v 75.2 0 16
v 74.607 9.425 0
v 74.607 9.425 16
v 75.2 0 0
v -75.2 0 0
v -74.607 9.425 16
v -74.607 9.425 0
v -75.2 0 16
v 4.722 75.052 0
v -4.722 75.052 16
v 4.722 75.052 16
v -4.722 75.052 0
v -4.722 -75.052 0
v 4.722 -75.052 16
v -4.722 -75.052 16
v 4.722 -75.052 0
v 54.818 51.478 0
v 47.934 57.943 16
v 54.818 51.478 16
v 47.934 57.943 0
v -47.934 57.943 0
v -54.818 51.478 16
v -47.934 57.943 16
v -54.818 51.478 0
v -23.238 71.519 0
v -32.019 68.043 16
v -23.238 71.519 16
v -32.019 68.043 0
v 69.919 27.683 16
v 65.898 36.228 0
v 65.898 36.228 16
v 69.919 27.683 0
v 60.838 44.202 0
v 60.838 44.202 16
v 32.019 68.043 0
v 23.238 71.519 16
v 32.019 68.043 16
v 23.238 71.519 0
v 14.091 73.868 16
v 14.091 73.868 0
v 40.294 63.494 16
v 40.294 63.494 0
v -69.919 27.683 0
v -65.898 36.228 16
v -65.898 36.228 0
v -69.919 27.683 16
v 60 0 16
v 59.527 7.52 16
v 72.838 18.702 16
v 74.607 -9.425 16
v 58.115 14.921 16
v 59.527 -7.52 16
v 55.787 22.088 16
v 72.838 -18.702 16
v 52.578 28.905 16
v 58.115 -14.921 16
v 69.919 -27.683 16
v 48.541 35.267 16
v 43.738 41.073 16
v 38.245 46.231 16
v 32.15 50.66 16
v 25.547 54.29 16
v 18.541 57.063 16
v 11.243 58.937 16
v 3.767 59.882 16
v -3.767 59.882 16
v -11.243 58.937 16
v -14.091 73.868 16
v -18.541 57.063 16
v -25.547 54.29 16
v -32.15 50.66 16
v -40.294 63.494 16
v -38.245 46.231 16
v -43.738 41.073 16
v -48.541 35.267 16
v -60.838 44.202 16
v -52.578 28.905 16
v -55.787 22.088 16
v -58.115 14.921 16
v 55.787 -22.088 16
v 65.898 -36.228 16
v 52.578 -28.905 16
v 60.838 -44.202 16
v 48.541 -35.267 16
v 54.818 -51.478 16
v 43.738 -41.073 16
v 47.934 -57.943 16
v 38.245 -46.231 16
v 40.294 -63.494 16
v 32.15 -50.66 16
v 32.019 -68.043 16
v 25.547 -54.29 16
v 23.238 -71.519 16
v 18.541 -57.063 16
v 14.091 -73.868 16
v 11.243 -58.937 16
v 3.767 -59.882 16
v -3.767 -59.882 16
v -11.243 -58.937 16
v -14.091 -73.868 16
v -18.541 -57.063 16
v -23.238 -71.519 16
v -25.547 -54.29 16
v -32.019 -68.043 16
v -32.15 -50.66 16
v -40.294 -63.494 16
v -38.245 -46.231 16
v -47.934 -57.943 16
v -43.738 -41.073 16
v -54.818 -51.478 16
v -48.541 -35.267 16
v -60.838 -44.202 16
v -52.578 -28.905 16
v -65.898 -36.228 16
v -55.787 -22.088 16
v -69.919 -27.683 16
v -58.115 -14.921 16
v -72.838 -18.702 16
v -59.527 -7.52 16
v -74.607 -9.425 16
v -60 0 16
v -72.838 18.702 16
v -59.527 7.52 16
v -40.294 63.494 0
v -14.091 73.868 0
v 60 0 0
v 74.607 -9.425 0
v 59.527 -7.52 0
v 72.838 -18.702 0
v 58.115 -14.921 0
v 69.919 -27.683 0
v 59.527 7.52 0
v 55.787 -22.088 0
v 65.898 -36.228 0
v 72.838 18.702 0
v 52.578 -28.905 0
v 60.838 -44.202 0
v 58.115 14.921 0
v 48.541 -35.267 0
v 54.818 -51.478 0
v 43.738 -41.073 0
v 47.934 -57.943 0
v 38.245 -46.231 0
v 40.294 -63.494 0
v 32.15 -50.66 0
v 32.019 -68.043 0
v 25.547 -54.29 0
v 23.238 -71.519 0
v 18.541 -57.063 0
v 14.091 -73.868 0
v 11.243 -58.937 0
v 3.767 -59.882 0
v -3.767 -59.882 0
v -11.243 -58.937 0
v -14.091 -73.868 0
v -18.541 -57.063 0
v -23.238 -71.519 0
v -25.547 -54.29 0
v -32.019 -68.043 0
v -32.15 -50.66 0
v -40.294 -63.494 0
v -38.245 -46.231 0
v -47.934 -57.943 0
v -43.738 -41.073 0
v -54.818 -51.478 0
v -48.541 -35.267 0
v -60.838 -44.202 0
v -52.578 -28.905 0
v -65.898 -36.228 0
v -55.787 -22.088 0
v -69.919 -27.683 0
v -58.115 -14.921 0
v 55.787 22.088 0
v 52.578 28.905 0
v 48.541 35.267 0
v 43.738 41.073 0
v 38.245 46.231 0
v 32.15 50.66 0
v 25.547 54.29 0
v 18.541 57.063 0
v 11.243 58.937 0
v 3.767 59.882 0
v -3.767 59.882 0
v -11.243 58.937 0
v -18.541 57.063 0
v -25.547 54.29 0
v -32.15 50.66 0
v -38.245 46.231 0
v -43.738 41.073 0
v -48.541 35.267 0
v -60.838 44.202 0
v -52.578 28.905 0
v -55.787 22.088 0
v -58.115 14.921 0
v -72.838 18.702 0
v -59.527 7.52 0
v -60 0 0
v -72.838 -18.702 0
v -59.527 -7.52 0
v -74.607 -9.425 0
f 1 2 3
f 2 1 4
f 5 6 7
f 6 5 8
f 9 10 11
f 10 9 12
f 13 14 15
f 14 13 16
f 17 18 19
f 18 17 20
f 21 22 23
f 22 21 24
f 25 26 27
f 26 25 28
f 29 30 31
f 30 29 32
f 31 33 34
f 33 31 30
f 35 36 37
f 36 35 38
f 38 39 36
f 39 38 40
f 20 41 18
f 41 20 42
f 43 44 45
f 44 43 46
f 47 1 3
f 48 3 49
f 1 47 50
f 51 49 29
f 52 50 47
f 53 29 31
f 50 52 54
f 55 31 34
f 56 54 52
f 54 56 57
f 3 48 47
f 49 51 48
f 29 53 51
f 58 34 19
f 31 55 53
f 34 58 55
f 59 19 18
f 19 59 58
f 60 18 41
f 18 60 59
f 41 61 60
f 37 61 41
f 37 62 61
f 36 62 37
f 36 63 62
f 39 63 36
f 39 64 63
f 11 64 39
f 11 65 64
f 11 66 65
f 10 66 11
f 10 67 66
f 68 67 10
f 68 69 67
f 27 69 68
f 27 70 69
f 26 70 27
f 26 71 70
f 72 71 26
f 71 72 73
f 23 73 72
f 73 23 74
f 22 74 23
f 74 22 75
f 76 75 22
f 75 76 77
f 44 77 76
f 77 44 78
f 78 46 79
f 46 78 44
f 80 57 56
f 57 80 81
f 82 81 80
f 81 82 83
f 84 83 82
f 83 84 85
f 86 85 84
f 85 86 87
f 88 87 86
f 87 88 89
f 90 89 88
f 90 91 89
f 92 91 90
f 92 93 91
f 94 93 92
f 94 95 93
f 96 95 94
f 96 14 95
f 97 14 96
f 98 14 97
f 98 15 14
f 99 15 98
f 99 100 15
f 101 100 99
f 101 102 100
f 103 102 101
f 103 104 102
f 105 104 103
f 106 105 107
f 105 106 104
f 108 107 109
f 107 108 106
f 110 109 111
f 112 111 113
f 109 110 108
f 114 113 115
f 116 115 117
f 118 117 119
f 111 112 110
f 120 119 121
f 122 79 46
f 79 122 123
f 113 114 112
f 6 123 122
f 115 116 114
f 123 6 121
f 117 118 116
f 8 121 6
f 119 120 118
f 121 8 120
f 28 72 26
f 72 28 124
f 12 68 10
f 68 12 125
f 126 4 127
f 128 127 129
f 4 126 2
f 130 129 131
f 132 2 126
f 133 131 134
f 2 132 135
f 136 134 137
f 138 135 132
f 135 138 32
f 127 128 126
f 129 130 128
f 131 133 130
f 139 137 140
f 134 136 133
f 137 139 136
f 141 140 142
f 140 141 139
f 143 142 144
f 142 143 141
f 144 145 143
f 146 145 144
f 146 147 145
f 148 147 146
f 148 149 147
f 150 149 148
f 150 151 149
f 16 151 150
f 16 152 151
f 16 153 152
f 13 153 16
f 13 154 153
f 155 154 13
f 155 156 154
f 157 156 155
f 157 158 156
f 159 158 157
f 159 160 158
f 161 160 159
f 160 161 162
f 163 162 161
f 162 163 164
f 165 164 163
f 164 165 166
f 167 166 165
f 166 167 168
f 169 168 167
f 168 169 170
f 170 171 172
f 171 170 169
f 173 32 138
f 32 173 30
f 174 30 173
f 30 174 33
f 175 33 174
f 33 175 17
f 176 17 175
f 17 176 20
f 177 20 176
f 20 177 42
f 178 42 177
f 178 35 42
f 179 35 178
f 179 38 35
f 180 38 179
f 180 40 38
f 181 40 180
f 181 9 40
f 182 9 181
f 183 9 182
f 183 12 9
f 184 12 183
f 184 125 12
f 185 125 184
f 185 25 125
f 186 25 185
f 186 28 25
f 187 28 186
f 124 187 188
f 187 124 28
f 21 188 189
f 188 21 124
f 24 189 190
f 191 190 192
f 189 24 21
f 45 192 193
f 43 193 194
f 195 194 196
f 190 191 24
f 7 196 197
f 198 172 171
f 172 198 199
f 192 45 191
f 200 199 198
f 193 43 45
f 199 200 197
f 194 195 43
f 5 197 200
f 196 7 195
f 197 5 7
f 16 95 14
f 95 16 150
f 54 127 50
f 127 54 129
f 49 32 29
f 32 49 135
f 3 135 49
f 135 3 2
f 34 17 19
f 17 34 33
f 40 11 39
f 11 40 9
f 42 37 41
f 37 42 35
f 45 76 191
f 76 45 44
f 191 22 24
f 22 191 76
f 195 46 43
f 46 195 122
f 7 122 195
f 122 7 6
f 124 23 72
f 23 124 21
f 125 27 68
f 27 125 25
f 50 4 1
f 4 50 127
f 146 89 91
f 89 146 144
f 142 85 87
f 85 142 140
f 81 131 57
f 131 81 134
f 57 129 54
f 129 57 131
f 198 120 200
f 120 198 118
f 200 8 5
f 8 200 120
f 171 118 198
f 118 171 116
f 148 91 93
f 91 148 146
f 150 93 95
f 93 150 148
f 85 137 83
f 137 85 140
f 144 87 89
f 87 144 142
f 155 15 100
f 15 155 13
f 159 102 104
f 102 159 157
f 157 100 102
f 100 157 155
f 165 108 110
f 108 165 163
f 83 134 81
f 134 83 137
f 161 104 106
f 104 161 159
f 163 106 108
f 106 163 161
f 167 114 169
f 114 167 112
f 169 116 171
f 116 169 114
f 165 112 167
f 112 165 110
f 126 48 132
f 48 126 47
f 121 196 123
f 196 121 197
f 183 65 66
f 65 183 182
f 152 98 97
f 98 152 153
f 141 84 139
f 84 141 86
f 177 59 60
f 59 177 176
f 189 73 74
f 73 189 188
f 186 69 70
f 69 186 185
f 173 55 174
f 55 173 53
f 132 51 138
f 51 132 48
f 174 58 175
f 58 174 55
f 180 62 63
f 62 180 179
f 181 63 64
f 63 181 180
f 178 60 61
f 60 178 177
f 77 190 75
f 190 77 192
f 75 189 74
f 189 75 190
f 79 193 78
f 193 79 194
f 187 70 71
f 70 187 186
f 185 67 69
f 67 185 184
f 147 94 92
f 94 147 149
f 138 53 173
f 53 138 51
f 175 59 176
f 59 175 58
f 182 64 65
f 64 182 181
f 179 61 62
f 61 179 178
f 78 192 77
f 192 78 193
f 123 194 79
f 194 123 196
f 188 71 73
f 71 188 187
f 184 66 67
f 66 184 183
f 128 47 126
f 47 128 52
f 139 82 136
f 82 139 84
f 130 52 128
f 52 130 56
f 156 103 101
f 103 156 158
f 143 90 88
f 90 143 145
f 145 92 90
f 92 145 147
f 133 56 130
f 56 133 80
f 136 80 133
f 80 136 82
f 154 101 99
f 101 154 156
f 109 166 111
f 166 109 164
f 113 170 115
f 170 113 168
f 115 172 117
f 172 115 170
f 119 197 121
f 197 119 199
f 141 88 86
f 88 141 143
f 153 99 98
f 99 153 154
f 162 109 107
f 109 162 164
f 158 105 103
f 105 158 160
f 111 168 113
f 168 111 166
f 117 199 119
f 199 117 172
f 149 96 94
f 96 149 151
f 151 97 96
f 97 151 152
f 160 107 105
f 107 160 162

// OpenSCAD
$fn = 50;


difference() {
	union() {
		translate(v = [0, 0, 0]) {
			rotate(a = [0, 0, 0]) {
				cylinder(h = 16, r = 75.2000000000);
			}
		}
	}
	union() {
		translate(v = [0, 0, 0]) {
			rotate(a = [0, 0, 0]) {
				cylinder(h = 16, r = 60.0000000000);
			}
		}
	}
}
